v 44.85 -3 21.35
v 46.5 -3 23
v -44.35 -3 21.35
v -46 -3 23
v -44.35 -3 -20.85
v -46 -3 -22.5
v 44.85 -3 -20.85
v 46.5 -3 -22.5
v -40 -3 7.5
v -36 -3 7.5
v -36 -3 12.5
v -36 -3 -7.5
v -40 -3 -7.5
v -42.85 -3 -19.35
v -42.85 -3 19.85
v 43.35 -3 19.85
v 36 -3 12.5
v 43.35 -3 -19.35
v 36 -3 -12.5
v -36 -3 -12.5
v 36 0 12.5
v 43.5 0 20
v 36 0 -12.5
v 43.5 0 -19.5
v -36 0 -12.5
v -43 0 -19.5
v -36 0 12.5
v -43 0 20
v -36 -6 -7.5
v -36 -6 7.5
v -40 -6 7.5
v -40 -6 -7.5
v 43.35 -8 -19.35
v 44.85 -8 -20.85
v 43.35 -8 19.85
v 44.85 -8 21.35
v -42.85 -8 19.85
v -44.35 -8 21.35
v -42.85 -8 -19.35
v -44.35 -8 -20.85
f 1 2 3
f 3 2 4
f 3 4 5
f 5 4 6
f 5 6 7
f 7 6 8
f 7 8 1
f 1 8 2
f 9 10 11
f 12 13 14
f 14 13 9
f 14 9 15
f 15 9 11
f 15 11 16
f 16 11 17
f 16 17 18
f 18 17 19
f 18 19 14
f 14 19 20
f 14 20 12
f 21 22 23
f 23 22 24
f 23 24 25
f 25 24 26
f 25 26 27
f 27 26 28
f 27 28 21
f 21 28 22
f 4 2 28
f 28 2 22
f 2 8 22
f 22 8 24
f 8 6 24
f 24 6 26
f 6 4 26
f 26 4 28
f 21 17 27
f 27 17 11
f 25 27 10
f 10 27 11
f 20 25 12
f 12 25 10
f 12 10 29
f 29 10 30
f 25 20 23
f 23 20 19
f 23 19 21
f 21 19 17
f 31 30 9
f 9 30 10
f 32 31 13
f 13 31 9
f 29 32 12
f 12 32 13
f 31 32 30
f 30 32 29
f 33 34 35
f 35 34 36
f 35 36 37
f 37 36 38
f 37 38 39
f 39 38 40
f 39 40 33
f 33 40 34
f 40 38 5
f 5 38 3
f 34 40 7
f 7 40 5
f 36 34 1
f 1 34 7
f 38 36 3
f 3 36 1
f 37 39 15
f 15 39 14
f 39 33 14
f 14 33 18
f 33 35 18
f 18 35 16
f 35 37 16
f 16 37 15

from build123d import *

# Parameters (mm, degrees)
TOP_EDGE_OUTLINE_W   = 86.5
TOP_EDGE_OUTLINE_H   = 39.5
TOP_EDGE_DEPTH       = 3
TOP_EDGE_DRAFT       = 45
SKETCH13_W           = 72
SKETCH13_H           = 25
DISPLAY_HOLE_DEPTH   = 6
SKETCH14_W           = 92.5
SKETCH14_H           = 45.5
SKETCH14_W_2         = 89.5
SKETCH14_H_2         = 42.5
BOSS_EXTRUDE5_DEPTH  = 5
SKETCH15_W           = 128.5
SKETCH15_H           = 45.5
SKETCH15_W_2         = 89.5
SKETCH15_H_2         = 42.5
BOSS_EXTRUDE6_DEPTH  = 2
SKETCH16_W           = 128.5
SKETCH16_H           = 45.5
SKETCH16_W_2         = 125.5
SKETCH16_H_2         = 42.5
BOSS_EXTRUDE7_DEPTH  = 37
LOFT2_OUTLINE_W      = 33
LOFT2_OUTLINE_H      = 42.5
LOFT2_DEPTH          = 1.5
LOFT2_DRAFT          = 45
SKETCH19_R           = 2.75
SKETCH19_R_2         = 2
BOSS_EXTRUDE8_DEPTH  = 1
CUT_EXTRUDE3_START   = -11
SKETCH20_R           = 2
CUT_EXTRUDE3_DEPTH   = 11
SKETCH21_W           = 12
SKETCH21_H           = 8
CUT_EXTRUDE4_DEPTH   = 11
SKETCH22_W           = 4
SKETCH22_H           = 15
BOSS_EXTRUDE9_DEPTH  = 3
SKETCH24_W           = 42.5
SKETCH24_H           = 37
CUT_EXTRUDE5_DEPTH   = 17
SKETCH26_W           = 65.330388672
SKETCH26_H           = 66.528532866
CUT_EXTRUDE6_DEPTH   = 47
SKETCH27_W           = 135.174847233
SKETCH27_H           = 89.815373094
CUT_EXTRUDE7_DEPTH   = 47
SKETCH28_W           = 107.897480511
SKETCH28_H           = 56.576939502
SKETCH28_W_2         = 83.398406197
SKETCH28_H_2         = 34.654132256
CUT_EXTRUDE9_DEPTH   = 20.5
SKETCH29_W           = 89.2
SKETCH29_H           = 42.2
SKETCH29_W_2         = 86.2
SKETCH29_H_2         = 39.2
BOSS_EXTRUDE11_DEPTH = 5


# Read off the part's stored shape, not the designer's step: Top Edge, Loft2
with BuildPart() as part:
    # Top Edge outline → Top Edge (with draft: the straight prism first)
    with BuildSketch(Plane(origin=(0, 0, 0), x_dir=(1, 0, 0), z_dir=(0, 1, 0))):
        with Locations((0.25, -0.25)):
            Rectangle(TOP_EDGE_OUTLINE_W, TOP_EDGE_OUTLINE_H)
    extrude(amount=-TOP_EDGE_DEPTH)
    # Top Edge: the draft: its side faces are tilted about the plane it starts from
    top_edge_sides = [part.faces().sort_by_distance(p)[0] for p in [
        (-43, -1.5, 0.25),
        (0.25, -1.5, 20),
        (43.5, -1.5, 0.25),
        (0.25, -1.5, -19.5),
    ]]
    draft(top_edge_sides, Plane(origin=(0, 0, 0), x_dir=(1, 0, 0), z_dir=(0, 1, 0)), TOP_EDGE_DRAFT)

    # Sketch13 → Display Hole (cut)
    with BuildSketch(Plane(origin=(0, 0, 0), x_dir=(1, 0, 0), z_dir=(0, 1, 0))):
        Rectangle(SKETCH13_W, SKETCH13_H)
    extrude(amount=-DISPLAY_HOLE_DEPTH, mode=Mode.SUBTRACT)

    # Sketch14 → Boss-Extrude5 (add)
    with BuildSketch(Plane.XZ.offset(3)):
        with Locations((0.25, 0.25)):
            Rectangle(SKETCH14_W, SKETCH14_H)
        with Locations((0.25, 0.25)):
            Rectangle(SKETCH14_W_2, SKETCH14_H_2, mode=Mode.SUBTRACT)
    extrude(amount=BOSS_EXTRUDE5_DEPTH)

    # Sketch15 → Boss-Extrude6 (add)
    with BuildSketch(Plane.XZ.offset(8)):
        with Locations((18.25, 0.25)):
            Rectangle(SKETCH15_W, SKETCH15_H)
        with Locations((0.25, 0.25)):
            Rectangle(SKETCH15_W_2, SKETCH15_H_2, mode=Mode.SUBTRACT)
    extrude(amount=BOSS_EXTRUDE6_DEPTH)

    # Sketch16 → Boss-Extrude7 (add)
    with BuildSketch(Plane.XZ.offset(10)):
        with Locations((18.25, 0.25)):
            Rectangle(SKETCH16_W, SKETCH16_H)
        with Locations((18.25, 0.25)):
            Rectangle(SKETCH16_W_2, SKETCH16_H_2, mode=Mode.SUBTRACT)
    extrude(amount=BOSS_EXTRUDE7_DEPTH)


with BuildPart() as loft2_tool:
    # Loft2 outline → Loft2 (with draft: the straight prism first)
    with BuildSketch(Plane(origin=(0, -6.5, 0), x_dir=(1, 0, 0), z_dir=(0, 1, 0))):
        with Locations((64.5, -0.25)):
            Rectangle(LOFT2_OUTLINE_W, LOFT2_OUTLINE_H)
    extrude(amount=-LOFT2_DEPTH)
    # Loft2: the draft: its side faces are tilted about the plane it starts from
    loft2_sides = [loft2_tool.faces().sort_by_distance(p)[0] for p in [
        (81, -7.25, 0.25),
        (64.5, -7.25, -21),
        (48, -7.25, 0.25),
        (64.5, -7.25, 21.5),
    ]]
    draft(loft2_sides, Plane(origin=(0, -6.5, 0), x_dir=(1, 0, 0), z_dir=(0, 1, 0)), LOFT2_DRAFT)


with BuildPart() as part_1:
    add(part.part)

    # Loft2: add loft2_tool
    add(loft2_tool.part)

    # Sketch19 → Boss-Extrude8 (add)
    with BuildSketch(Plane(origin=(0, -6.5, 0), x_dir=(1, 0, 0), z_dir=(0, 1, 0))):
        with Locations(Location((64.5, 3, 0), (0, 0, 270))):
            Circle(SKETCH19_R)
        with Locations(Location((64.5, 3, 0), (0, 0, 270))):
            Circle(SKETCH19_R_2, mode=Mode.SUBTRACT)
    extrude(amount=BOSS_EXTRUDE8_DEPTH)

    # Sketch20 → Cut-Extrude3 (cut)
    with BuildSketch(Plane(origin=(0, -6.5, 0), x_dir=(1, 0, 0), z_dir=(0, 1, 0)).offset(CUT_EXTRUDE3_START)):
        with Locations(Location((64.5, 3, 0), (0, 0, 90))):
            Circle(SKETCH20_R)
    extrude(amount=CUT_EXTRUDE3_DEPTH, mode=Mode.SUBTRACT)

    # Sketch21 → Cut-Extrude4 (cut)
    with BuildSketch(Plane(origin=(82.5, 0, 0), x_dir=(0, 0, -1), z_dir=(1, 0, 0))):
        with Locations((0, -43)):
            Rectangle(SKETCH21_W, SKETCH21_H)
    extrude(amount=-CUT_EXTRUDE4_DEPTH, mode=Mode.SUBTRACT)

    # Sketch22 → Boss-Extrude9 (add)
    with BuildSketch(Plane.XZ.offset(3)):
        with Locations((-38, 0)):
            Rectangle(SKETCH22_W, SKETCH22_H)
    extrude(amount=BOSS_EXTRUDE9_DEPTH)

    # Sketch24 → Cut-Extrude5 (cut)
    with BuildSketch(Plane.ZY.offset(-81)):
        with Locations((0.25, -28.5)):
            Rectangle(SKETCH24_W, SKETCH24_H)
    extrude(amount=-CUT_EXTRUDE5_DEPTH, mode=Mode.SUBTRACT)

    # Sketch26 → Cut-Extrude6 (cut)
    with BuildSketch(Plane(origin=(46.5, 0, 0), x_dir=(0, 0, -1), z_dir=(1, 0, 0))):
        with Locations((4.479516554, -23.405372169)):
            Rectangle(SKETCH26_W, SKETCH26_H)
    extrude(amount=CUT_EXTRUDE6_DEPTH, mode=Mode.SUBTRACT)

    # Sketch27 → Cut-Extrude7 (cut)
    with BuildSketch(Plane.XZ.offset(10)):
        with Locations((-2.496201378, -4.177518392)):
            Rectangle(SKETCH27_W, SKETCH27_H)
    extrude(amount=CUT_EXTRUDE7_DEPTH, mode=Mode.SUBTRACT)

    # Sketch28 → Cut-Extrude9 (cut)
    with BuildSketch(Plane.XZ.offset(3)):
        with Locations((0.925246346, -0.196985684)):
            Rectangle(SKETCH28_W, SKETCH28_H)
        with Locations((-0.40760533, 0.012173471)):
            Rectangle(SKETCH28_W_2, SKETCH28_H_2, mode=Mode.SUBTRACT)
    extrude(amount=CUT_EXTRUDE9_DEPTH, mode=Mode.SUBTRACT)

    # Sketch29 → Boss-Extrude11 (add)
    with BuildSketch(Plane.XZ.offset(3)):
        with Locations((0.25, 0.25)):
            Rectangle(SKETCH29_W, SKETCH29_H)
        with Locations((0.25, 0.25)):
            Rectangle(SKETCH29_W_2, SKETCH29_H_2, mode=Mode.SUBTRACT)
    extrude(amount=BOSS_EXTRUDE11_DEPTH)


solid = part_1.part
